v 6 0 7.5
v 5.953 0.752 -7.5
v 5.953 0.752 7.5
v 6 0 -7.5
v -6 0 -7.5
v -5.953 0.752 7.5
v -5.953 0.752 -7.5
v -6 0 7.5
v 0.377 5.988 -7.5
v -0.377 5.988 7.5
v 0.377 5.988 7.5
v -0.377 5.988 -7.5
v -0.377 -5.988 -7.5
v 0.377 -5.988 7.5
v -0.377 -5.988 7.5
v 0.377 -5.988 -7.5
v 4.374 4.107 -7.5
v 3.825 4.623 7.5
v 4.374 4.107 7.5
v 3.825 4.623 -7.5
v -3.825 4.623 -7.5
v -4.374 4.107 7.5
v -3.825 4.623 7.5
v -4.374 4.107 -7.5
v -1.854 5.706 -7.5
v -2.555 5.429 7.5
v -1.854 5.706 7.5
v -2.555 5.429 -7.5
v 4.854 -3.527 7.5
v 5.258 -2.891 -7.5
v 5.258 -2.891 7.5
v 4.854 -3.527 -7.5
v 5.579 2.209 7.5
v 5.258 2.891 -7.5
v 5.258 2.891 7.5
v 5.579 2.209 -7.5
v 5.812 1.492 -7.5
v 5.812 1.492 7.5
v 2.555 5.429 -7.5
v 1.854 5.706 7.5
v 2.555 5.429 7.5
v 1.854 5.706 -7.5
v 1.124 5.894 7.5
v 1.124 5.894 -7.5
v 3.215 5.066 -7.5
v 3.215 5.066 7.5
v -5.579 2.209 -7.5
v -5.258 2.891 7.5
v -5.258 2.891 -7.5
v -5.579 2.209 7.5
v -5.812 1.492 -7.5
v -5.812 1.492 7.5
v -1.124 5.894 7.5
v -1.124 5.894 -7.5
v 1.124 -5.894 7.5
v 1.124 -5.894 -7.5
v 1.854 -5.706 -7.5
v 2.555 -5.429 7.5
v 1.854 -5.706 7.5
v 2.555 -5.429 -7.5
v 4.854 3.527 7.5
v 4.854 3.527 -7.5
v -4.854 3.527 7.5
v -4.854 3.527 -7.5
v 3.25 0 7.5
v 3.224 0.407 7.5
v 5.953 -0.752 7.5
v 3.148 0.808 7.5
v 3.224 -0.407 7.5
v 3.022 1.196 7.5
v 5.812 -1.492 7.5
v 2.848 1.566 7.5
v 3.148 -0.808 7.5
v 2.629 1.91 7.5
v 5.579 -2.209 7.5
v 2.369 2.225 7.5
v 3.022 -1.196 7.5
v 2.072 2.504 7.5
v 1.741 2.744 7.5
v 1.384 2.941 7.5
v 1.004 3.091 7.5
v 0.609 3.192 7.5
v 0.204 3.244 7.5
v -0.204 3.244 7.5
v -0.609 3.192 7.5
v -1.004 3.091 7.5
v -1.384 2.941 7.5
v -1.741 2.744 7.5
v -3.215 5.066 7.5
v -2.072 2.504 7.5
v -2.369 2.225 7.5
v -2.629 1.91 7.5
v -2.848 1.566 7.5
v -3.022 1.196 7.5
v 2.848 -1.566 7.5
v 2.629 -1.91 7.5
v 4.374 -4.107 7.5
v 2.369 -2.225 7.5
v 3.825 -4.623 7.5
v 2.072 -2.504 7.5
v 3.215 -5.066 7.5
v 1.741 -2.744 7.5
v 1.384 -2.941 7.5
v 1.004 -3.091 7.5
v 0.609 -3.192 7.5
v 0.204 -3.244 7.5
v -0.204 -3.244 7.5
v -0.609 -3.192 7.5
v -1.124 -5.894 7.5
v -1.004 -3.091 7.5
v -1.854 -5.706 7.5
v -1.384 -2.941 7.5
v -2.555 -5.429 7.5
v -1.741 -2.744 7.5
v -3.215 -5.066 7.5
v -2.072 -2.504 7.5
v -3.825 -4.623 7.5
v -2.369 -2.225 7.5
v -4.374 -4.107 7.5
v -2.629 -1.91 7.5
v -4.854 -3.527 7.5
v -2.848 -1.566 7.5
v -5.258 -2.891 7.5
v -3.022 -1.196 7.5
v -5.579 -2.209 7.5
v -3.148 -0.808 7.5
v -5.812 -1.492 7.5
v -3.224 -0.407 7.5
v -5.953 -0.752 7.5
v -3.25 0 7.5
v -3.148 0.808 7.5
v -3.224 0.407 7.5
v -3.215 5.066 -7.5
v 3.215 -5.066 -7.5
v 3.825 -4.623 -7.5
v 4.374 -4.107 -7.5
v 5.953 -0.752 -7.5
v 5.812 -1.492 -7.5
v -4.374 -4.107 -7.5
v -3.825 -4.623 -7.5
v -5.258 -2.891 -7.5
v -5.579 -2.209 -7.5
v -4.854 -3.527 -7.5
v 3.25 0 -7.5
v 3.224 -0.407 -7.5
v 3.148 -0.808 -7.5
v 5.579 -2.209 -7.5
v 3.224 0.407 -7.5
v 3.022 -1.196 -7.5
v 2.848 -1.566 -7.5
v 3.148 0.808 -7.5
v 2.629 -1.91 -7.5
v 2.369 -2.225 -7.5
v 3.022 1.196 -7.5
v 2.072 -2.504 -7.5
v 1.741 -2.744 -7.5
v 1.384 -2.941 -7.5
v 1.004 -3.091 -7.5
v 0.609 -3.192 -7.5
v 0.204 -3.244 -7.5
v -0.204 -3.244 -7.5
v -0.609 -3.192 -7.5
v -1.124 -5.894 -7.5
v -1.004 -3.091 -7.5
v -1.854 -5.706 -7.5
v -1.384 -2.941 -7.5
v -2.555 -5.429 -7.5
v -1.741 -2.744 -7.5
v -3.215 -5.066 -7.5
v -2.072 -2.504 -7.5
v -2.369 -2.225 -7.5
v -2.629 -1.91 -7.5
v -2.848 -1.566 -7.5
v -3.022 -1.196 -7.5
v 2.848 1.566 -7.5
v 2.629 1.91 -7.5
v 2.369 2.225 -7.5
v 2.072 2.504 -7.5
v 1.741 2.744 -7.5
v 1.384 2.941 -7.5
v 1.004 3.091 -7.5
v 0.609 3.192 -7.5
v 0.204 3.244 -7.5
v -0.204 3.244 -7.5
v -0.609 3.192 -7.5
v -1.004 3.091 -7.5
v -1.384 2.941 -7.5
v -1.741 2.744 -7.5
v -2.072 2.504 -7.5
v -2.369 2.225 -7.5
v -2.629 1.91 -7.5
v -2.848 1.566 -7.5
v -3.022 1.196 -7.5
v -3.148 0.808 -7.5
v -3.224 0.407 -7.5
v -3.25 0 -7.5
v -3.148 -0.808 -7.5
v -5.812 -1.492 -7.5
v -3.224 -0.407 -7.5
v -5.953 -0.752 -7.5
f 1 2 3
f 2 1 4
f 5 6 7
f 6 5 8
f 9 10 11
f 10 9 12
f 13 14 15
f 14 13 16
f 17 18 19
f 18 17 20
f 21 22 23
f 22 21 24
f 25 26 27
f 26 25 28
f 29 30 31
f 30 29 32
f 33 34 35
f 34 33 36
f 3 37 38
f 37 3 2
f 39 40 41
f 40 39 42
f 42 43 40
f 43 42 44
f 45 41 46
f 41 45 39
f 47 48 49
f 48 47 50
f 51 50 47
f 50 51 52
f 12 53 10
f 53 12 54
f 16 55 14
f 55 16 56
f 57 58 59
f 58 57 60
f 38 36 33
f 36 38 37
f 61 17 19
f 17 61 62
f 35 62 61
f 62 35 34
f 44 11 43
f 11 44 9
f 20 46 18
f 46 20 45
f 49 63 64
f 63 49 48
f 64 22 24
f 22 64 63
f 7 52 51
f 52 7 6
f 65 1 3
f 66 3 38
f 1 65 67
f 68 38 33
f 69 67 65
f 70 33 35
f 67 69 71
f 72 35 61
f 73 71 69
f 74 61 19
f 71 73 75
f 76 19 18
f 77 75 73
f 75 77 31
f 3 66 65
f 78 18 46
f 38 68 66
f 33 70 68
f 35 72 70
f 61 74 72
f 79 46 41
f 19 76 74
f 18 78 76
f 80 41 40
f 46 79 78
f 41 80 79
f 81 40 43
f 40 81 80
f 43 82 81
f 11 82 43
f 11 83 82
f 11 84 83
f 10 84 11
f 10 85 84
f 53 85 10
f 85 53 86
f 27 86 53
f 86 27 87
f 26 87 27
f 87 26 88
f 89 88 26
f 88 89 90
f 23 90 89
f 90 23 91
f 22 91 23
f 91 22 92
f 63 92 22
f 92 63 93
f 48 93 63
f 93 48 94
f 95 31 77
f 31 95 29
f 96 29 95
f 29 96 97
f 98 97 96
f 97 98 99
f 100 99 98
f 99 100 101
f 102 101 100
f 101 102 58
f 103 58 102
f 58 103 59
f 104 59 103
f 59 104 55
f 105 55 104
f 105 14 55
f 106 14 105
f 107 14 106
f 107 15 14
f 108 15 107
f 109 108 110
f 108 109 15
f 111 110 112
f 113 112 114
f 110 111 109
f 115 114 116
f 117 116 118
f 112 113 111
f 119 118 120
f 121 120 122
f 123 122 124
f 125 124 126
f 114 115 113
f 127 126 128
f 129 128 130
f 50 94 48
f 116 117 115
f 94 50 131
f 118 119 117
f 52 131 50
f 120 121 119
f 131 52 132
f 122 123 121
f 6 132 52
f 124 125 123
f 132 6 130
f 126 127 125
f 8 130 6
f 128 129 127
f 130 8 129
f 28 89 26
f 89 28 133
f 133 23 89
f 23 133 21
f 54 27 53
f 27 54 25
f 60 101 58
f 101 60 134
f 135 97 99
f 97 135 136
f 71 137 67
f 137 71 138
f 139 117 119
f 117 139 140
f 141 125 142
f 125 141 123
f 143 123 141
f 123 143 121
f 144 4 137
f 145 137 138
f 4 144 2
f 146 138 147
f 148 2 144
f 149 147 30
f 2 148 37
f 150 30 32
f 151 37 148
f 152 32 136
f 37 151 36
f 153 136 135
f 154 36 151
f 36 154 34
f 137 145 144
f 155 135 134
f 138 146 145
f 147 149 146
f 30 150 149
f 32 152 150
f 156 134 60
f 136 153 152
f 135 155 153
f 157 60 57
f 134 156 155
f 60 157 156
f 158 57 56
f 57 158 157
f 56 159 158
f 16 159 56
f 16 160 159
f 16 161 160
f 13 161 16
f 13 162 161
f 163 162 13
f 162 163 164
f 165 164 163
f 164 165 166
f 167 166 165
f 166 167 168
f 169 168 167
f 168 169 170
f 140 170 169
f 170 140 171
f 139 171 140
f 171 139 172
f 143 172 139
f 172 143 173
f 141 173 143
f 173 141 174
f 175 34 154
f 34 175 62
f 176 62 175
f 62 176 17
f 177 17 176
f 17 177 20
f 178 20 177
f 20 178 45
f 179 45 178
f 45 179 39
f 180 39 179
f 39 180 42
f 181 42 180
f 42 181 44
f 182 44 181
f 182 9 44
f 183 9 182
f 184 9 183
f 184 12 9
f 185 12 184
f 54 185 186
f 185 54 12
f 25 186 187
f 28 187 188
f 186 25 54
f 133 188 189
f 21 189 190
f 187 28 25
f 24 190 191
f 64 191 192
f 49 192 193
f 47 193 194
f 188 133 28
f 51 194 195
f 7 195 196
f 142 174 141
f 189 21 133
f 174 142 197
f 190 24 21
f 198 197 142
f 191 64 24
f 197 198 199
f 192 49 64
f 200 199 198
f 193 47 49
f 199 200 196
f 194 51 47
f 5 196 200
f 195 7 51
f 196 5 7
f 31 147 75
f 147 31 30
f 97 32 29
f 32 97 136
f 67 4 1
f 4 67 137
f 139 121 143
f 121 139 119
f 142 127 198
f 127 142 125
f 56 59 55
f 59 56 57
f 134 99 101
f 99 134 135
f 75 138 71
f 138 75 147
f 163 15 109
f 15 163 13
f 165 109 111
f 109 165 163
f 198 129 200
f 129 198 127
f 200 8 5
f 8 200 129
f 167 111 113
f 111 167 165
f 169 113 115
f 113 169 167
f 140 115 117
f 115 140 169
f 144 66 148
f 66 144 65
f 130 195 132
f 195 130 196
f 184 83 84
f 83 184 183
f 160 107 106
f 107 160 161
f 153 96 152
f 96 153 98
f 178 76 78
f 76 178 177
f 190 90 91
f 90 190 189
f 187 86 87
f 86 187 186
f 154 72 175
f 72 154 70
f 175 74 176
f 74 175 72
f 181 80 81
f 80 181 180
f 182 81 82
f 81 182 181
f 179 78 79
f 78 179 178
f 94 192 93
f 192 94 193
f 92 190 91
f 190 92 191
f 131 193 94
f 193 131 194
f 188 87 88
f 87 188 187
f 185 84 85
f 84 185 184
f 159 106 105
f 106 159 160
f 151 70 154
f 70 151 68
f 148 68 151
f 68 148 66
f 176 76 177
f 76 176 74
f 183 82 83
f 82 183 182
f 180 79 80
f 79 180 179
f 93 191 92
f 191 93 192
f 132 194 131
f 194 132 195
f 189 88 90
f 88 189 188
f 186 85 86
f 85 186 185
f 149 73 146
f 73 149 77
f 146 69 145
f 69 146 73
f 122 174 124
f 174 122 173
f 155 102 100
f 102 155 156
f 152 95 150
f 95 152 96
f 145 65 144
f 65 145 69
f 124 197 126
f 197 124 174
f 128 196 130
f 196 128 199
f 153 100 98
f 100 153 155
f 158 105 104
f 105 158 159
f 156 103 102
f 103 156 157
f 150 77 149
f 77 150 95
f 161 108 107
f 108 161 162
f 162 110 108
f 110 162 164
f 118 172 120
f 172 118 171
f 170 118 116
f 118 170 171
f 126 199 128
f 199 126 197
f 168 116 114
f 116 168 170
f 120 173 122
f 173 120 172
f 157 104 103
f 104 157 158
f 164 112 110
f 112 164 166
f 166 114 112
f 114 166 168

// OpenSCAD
$fn = 50;


difference() {
	union() {
		translate(v = [0, 0, -7.5000000000]) {
			cylinder(h = 15, r = 6.0000000000);
		}
	}
	union() {
		translate(v = [0, 0, -100.0000000000]) {
			cylinder(h = 200, r = 3.2500000000);
		}
	}
}
